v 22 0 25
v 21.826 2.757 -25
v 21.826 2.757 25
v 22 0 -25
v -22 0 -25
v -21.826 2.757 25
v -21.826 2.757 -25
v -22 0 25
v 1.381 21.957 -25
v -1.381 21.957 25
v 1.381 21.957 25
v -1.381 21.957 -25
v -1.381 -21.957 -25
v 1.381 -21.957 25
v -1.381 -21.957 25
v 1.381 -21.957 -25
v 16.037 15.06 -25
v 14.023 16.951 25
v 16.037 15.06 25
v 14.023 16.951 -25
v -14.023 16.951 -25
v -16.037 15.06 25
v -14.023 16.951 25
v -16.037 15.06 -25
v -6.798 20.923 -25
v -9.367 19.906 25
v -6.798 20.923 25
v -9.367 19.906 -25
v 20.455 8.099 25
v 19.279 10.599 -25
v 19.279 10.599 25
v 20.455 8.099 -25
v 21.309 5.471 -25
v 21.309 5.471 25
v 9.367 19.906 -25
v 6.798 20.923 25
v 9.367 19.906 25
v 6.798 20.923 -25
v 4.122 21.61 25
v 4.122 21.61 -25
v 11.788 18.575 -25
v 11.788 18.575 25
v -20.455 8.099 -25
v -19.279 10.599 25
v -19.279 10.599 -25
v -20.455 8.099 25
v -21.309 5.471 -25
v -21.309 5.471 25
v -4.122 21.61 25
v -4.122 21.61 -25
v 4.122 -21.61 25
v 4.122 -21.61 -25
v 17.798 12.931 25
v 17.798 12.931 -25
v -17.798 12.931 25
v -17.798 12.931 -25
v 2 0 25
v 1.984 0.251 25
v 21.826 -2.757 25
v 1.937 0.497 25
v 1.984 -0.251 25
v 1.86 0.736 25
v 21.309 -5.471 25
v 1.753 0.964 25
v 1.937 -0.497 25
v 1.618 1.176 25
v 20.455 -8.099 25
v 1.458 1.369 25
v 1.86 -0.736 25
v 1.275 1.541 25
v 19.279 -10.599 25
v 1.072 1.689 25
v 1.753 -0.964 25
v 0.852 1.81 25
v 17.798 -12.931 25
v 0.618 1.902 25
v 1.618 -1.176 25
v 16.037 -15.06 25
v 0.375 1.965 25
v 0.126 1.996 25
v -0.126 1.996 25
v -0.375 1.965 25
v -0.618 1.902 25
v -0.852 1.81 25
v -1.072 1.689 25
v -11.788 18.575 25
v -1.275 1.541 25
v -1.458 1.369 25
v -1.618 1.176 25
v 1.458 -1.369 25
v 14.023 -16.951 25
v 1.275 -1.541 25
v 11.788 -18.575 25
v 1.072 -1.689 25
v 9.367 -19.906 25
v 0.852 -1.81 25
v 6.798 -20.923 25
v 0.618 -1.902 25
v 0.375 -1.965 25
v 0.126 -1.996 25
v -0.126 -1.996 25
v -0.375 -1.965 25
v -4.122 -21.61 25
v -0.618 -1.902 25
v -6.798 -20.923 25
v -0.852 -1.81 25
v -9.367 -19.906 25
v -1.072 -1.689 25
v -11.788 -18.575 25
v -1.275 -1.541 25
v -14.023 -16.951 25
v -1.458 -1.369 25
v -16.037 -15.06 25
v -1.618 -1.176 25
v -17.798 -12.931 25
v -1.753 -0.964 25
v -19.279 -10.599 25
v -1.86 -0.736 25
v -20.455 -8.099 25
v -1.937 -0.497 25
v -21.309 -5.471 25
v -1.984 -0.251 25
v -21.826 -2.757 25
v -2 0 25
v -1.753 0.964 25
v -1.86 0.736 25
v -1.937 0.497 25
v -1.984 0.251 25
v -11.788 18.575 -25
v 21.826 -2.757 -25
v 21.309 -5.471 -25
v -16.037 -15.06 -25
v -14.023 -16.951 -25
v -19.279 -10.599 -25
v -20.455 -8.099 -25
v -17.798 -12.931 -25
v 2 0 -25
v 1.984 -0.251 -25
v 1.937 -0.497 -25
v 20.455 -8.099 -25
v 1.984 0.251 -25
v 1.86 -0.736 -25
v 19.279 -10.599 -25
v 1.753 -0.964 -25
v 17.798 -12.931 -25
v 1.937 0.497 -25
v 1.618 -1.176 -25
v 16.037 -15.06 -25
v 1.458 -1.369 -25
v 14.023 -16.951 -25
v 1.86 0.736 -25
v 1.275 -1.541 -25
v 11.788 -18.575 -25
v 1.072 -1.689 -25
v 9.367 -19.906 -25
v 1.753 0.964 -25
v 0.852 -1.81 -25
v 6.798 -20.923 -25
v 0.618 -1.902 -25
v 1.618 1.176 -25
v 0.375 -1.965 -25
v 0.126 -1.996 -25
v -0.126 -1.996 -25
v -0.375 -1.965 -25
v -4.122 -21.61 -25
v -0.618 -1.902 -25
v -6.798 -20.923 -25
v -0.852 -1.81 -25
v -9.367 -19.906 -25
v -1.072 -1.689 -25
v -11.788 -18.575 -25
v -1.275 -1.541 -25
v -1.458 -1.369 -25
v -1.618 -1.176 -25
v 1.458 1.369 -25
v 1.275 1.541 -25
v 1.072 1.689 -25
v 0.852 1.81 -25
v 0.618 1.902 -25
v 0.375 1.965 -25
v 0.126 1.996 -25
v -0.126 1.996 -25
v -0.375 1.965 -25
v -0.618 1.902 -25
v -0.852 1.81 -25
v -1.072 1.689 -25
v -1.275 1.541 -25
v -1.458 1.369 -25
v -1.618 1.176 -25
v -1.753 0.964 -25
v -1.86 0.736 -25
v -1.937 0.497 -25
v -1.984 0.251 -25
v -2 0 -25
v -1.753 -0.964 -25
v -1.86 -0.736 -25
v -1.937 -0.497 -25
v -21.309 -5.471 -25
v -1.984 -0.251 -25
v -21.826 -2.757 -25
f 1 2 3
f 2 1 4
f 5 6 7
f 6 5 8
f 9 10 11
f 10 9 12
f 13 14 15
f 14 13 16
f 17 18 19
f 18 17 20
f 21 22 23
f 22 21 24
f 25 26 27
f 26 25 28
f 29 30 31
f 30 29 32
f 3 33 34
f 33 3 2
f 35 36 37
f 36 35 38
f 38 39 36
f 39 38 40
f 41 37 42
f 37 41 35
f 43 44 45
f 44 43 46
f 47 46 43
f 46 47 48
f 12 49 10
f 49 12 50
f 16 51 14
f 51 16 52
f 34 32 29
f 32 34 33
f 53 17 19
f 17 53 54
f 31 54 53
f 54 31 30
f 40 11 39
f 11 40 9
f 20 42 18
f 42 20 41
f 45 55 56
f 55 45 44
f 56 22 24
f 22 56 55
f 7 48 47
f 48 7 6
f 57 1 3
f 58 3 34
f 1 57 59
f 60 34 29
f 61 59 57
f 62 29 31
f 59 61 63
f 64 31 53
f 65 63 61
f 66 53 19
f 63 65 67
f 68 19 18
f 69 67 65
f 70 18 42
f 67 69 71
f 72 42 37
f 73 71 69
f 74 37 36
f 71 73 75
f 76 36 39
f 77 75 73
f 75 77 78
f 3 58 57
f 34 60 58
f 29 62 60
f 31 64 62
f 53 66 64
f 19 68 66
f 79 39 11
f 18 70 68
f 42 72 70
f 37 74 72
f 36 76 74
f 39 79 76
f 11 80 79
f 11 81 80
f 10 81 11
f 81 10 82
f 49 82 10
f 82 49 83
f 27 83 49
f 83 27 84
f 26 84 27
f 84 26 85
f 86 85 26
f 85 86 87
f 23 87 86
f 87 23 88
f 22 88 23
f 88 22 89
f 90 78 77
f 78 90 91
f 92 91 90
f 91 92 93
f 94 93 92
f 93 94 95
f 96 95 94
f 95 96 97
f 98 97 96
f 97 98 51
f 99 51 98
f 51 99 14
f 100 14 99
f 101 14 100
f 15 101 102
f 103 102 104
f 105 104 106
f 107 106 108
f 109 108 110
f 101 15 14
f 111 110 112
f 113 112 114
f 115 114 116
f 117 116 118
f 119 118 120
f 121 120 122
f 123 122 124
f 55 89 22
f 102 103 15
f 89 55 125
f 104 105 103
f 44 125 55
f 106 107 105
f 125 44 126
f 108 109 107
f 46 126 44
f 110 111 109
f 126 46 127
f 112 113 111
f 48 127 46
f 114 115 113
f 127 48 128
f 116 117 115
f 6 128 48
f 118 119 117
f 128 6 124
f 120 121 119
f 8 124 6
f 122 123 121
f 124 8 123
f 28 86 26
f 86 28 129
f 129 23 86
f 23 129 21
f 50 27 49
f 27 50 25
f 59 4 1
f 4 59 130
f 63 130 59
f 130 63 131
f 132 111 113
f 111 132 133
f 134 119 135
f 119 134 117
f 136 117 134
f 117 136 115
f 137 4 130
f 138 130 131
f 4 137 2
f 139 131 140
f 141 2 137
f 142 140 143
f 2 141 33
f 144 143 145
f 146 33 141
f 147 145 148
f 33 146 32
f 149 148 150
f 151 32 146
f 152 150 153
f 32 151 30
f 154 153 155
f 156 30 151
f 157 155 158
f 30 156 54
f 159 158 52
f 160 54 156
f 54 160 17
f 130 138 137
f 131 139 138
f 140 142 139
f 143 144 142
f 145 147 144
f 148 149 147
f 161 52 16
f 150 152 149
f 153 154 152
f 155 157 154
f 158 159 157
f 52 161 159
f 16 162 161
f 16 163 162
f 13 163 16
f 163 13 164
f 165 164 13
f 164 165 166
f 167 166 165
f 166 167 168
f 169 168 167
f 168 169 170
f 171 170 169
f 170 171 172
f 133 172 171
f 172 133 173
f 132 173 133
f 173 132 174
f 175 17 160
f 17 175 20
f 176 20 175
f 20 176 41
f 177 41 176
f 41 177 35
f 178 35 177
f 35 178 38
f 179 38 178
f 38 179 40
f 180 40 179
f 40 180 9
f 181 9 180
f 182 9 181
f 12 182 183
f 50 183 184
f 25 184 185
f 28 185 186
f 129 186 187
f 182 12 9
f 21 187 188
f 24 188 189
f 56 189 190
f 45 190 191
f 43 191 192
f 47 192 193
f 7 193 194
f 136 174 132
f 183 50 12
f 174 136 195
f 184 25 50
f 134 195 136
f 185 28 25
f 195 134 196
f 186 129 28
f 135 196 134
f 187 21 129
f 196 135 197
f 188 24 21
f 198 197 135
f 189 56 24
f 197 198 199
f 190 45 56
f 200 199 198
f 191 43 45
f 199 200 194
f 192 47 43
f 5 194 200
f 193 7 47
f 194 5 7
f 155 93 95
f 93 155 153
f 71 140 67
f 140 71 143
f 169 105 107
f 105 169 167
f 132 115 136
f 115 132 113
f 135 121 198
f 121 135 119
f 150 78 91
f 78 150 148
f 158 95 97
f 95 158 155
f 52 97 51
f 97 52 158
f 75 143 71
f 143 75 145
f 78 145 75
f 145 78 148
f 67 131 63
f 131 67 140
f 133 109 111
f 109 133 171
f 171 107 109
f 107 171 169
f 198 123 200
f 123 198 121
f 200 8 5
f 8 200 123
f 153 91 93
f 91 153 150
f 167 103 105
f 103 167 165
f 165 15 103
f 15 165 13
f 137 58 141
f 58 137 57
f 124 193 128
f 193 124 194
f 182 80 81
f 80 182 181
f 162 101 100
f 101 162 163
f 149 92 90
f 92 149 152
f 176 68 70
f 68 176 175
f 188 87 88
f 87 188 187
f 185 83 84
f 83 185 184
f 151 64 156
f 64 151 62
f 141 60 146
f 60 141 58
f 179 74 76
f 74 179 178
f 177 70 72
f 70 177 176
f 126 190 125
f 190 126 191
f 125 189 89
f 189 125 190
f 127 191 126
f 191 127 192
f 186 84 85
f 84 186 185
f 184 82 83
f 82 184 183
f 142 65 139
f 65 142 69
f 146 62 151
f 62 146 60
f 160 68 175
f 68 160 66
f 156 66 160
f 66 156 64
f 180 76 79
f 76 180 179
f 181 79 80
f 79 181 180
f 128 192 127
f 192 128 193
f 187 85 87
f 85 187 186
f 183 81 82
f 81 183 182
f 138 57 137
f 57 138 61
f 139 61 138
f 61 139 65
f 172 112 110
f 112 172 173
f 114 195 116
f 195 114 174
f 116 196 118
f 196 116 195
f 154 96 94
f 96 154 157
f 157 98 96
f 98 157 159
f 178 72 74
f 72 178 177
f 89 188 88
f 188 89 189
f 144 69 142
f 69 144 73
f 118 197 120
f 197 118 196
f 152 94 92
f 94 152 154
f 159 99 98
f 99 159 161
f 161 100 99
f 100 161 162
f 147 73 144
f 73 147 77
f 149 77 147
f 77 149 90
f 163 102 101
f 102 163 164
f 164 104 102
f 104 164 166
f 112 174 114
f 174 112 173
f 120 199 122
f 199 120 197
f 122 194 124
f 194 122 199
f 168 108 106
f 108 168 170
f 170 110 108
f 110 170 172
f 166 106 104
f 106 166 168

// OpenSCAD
$fn = 50;


difference() {
	union() {
		translate(v = [0, 0, -25.0000000000]) {
			cylinder(h = 50, r = 22.0000000000);
		}
	}
	union() {
		translate(v = [0, 0, -100.0000000000]) {
			cylinder(h = 200, r = 2.0000000000);
		}
	}
}
